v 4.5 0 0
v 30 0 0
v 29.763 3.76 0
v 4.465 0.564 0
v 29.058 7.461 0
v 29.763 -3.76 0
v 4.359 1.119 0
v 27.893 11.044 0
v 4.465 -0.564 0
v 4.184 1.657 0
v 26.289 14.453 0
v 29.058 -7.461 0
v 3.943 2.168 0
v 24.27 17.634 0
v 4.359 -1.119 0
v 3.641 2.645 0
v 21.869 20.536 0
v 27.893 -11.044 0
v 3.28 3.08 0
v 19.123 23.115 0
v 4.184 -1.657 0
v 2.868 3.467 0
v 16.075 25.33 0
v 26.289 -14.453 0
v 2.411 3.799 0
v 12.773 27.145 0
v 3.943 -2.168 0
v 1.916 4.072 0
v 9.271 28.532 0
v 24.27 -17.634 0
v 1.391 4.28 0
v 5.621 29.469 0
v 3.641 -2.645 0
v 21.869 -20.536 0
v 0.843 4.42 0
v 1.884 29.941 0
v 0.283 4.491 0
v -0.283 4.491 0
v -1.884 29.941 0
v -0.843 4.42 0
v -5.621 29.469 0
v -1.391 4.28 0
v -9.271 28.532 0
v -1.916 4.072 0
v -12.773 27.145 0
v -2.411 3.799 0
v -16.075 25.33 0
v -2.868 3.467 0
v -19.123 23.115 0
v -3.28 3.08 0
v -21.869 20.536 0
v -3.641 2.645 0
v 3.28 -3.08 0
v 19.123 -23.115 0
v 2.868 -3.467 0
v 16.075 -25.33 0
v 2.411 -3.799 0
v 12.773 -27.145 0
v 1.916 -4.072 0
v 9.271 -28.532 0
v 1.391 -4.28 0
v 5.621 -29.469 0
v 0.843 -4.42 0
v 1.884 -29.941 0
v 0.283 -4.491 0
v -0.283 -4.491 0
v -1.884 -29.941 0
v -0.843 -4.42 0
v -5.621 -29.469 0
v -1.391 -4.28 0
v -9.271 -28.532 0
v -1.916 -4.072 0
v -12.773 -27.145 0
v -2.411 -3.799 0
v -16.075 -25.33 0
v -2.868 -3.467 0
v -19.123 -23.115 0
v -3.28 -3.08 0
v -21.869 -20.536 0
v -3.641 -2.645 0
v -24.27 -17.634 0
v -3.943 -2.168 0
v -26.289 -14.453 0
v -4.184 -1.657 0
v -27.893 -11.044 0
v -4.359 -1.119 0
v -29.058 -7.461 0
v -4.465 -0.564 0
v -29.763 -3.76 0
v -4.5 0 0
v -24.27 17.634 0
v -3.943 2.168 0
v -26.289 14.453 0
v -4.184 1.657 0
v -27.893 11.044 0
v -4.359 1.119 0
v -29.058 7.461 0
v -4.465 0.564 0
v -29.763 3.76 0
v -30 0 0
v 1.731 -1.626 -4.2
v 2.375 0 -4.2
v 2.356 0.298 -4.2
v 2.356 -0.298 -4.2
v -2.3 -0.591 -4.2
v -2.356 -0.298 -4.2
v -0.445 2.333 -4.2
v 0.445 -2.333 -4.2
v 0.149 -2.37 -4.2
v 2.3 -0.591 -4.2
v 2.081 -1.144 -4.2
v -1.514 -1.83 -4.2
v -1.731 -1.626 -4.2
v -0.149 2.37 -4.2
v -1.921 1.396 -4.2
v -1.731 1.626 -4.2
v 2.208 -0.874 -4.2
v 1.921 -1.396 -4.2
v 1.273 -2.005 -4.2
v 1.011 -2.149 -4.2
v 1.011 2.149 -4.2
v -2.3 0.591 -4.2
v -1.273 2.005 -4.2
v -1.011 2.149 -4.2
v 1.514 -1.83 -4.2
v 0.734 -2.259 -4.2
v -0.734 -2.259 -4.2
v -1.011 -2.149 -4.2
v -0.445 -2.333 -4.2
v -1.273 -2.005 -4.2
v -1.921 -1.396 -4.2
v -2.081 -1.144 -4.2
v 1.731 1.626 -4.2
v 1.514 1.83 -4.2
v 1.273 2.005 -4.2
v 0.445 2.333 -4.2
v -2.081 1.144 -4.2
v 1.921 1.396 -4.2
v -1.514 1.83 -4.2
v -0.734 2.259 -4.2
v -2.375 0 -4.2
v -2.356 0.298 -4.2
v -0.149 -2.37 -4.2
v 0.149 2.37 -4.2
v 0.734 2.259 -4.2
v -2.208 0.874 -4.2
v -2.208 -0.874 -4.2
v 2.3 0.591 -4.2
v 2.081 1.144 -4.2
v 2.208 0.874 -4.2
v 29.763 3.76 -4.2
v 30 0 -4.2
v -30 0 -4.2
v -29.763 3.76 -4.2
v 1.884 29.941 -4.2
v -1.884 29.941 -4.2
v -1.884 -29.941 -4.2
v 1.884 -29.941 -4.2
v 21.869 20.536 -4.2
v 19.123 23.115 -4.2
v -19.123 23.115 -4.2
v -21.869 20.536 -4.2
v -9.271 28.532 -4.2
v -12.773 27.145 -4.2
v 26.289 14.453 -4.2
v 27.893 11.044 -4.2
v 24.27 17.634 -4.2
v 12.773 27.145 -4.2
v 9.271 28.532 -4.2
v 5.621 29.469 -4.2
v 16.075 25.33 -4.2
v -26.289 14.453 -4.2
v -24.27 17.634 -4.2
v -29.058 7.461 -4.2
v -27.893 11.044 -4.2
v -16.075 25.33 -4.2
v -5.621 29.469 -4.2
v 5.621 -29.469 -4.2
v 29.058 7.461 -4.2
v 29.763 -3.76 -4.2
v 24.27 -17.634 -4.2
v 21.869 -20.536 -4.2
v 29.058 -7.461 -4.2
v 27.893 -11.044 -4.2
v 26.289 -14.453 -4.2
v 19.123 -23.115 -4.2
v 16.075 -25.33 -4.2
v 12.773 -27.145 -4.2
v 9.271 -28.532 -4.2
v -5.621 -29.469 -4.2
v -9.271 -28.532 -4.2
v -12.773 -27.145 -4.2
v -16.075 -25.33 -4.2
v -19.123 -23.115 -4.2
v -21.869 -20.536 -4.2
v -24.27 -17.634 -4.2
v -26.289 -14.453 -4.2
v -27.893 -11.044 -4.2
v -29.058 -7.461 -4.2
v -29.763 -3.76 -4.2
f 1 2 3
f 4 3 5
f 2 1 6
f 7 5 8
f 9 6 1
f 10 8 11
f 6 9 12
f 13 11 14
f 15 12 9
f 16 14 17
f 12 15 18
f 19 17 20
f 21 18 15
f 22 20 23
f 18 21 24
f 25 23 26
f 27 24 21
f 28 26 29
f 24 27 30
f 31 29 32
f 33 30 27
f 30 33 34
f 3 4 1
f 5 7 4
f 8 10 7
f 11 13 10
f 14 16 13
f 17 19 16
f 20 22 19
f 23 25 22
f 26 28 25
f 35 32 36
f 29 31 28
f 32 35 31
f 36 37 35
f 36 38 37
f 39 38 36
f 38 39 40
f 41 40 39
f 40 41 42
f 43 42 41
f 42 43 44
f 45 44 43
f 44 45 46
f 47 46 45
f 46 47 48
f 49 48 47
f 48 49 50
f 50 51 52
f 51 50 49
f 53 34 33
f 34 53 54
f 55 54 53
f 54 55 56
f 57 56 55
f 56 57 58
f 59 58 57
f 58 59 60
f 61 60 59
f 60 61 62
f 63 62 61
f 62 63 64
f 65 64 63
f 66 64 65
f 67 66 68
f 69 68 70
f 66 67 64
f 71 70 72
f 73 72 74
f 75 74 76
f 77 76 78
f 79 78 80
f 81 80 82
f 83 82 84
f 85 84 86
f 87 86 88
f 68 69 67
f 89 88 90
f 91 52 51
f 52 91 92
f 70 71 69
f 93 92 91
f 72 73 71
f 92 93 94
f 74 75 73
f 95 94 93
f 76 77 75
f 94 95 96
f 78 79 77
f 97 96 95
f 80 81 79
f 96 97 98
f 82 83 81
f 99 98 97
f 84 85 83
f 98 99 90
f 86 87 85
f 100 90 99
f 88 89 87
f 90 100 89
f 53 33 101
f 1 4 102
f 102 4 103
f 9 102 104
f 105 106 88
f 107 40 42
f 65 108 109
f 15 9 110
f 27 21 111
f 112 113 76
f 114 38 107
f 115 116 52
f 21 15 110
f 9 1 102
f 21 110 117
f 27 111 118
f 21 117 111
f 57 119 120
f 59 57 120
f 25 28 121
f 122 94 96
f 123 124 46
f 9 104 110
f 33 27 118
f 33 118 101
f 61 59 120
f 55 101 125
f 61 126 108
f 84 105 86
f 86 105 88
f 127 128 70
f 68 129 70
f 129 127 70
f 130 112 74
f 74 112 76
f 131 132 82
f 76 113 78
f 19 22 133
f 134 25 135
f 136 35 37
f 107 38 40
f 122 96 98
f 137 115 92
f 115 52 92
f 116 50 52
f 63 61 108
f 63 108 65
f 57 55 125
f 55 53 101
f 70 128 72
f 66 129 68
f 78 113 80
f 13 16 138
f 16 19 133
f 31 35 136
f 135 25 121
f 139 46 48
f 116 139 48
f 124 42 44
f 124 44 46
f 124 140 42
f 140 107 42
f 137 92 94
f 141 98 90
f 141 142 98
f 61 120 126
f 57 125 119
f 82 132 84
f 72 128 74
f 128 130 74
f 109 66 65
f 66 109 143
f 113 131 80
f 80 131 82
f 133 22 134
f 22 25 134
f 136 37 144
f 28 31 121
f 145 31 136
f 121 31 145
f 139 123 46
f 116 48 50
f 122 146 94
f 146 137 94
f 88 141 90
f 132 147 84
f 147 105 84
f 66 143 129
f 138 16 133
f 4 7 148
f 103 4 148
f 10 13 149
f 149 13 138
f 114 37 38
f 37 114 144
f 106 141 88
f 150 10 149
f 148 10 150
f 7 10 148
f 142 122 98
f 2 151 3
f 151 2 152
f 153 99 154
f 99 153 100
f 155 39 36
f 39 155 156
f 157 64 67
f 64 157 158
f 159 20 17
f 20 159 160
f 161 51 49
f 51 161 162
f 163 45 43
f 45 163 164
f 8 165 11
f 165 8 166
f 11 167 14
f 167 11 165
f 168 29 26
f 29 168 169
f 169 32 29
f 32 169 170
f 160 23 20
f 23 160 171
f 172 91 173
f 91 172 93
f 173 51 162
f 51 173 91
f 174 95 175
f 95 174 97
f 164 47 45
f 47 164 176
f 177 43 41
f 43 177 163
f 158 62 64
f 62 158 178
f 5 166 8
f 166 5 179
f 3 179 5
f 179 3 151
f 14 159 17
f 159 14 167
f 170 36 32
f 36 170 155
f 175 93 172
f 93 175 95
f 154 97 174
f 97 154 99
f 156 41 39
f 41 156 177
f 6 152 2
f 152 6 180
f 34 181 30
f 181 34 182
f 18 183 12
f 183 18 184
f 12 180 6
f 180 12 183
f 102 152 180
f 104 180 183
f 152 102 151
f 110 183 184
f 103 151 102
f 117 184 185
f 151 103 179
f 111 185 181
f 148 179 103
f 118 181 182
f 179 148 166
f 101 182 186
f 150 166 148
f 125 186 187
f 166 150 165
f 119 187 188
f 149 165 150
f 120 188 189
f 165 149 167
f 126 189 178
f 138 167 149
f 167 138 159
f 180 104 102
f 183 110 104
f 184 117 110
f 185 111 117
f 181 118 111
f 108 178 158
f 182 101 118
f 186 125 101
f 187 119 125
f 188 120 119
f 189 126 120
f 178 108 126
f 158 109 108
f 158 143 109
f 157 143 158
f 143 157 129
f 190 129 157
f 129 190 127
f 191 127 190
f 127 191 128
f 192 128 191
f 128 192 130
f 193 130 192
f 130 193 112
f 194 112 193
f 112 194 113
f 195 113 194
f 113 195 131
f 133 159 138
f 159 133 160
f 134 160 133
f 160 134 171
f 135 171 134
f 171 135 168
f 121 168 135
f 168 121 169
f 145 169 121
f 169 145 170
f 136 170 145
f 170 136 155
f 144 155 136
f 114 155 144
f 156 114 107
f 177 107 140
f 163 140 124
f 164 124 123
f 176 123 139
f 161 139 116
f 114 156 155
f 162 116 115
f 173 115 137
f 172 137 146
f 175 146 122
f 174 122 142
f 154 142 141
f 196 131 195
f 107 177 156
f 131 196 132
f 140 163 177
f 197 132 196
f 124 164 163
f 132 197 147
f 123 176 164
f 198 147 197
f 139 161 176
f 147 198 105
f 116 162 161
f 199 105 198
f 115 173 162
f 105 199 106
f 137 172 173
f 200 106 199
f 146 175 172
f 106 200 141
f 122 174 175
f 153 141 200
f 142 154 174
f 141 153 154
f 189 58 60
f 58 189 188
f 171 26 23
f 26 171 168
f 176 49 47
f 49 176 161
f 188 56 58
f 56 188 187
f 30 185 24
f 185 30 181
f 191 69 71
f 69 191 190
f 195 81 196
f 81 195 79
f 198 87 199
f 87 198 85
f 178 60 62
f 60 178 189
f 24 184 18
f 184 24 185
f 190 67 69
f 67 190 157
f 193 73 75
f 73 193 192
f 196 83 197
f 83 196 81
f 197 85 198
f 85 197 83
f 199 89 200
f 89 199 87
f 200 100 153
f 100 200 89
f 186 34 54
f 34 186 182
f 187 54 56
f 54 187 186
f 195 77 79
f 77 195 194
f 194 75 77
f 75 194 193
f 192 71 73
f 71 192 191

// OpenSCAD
$fn = 50;


difference() {
	union() {
		translate(v = [0, 0, -4.2000000000]) {
			cylinder(h = 4.2000000000, r = 30.0000000000);
		}
	}
	union() {
		translate(v = [0, 0, 0]) {
			rotate(a = [0, 0, 0]) {
				difference() {
					union() {
						translate(v = [0, 0, -7.2000000000]) {
							cylinder(h = 7.2000000000, r = 2.2500000000);
						}
						translate(v = [0, 0, -4.2000000000]) {
							cylinder(h = 4.2000000000, r1 = 2.3750000000, r2 = 4.5000000000);
						}
						translate(v = [0, 0, -7.2000000000]) {
							cylinder(h = 7.2000000000, r = 2.3750000000);
						}
						translate(v = [0, 0, -7.2000000000]) {
							cylinder(h = 7.2000000000, r = 2.2500000000);
						}
					}
					union();
				}
			}
		}
	}
}
